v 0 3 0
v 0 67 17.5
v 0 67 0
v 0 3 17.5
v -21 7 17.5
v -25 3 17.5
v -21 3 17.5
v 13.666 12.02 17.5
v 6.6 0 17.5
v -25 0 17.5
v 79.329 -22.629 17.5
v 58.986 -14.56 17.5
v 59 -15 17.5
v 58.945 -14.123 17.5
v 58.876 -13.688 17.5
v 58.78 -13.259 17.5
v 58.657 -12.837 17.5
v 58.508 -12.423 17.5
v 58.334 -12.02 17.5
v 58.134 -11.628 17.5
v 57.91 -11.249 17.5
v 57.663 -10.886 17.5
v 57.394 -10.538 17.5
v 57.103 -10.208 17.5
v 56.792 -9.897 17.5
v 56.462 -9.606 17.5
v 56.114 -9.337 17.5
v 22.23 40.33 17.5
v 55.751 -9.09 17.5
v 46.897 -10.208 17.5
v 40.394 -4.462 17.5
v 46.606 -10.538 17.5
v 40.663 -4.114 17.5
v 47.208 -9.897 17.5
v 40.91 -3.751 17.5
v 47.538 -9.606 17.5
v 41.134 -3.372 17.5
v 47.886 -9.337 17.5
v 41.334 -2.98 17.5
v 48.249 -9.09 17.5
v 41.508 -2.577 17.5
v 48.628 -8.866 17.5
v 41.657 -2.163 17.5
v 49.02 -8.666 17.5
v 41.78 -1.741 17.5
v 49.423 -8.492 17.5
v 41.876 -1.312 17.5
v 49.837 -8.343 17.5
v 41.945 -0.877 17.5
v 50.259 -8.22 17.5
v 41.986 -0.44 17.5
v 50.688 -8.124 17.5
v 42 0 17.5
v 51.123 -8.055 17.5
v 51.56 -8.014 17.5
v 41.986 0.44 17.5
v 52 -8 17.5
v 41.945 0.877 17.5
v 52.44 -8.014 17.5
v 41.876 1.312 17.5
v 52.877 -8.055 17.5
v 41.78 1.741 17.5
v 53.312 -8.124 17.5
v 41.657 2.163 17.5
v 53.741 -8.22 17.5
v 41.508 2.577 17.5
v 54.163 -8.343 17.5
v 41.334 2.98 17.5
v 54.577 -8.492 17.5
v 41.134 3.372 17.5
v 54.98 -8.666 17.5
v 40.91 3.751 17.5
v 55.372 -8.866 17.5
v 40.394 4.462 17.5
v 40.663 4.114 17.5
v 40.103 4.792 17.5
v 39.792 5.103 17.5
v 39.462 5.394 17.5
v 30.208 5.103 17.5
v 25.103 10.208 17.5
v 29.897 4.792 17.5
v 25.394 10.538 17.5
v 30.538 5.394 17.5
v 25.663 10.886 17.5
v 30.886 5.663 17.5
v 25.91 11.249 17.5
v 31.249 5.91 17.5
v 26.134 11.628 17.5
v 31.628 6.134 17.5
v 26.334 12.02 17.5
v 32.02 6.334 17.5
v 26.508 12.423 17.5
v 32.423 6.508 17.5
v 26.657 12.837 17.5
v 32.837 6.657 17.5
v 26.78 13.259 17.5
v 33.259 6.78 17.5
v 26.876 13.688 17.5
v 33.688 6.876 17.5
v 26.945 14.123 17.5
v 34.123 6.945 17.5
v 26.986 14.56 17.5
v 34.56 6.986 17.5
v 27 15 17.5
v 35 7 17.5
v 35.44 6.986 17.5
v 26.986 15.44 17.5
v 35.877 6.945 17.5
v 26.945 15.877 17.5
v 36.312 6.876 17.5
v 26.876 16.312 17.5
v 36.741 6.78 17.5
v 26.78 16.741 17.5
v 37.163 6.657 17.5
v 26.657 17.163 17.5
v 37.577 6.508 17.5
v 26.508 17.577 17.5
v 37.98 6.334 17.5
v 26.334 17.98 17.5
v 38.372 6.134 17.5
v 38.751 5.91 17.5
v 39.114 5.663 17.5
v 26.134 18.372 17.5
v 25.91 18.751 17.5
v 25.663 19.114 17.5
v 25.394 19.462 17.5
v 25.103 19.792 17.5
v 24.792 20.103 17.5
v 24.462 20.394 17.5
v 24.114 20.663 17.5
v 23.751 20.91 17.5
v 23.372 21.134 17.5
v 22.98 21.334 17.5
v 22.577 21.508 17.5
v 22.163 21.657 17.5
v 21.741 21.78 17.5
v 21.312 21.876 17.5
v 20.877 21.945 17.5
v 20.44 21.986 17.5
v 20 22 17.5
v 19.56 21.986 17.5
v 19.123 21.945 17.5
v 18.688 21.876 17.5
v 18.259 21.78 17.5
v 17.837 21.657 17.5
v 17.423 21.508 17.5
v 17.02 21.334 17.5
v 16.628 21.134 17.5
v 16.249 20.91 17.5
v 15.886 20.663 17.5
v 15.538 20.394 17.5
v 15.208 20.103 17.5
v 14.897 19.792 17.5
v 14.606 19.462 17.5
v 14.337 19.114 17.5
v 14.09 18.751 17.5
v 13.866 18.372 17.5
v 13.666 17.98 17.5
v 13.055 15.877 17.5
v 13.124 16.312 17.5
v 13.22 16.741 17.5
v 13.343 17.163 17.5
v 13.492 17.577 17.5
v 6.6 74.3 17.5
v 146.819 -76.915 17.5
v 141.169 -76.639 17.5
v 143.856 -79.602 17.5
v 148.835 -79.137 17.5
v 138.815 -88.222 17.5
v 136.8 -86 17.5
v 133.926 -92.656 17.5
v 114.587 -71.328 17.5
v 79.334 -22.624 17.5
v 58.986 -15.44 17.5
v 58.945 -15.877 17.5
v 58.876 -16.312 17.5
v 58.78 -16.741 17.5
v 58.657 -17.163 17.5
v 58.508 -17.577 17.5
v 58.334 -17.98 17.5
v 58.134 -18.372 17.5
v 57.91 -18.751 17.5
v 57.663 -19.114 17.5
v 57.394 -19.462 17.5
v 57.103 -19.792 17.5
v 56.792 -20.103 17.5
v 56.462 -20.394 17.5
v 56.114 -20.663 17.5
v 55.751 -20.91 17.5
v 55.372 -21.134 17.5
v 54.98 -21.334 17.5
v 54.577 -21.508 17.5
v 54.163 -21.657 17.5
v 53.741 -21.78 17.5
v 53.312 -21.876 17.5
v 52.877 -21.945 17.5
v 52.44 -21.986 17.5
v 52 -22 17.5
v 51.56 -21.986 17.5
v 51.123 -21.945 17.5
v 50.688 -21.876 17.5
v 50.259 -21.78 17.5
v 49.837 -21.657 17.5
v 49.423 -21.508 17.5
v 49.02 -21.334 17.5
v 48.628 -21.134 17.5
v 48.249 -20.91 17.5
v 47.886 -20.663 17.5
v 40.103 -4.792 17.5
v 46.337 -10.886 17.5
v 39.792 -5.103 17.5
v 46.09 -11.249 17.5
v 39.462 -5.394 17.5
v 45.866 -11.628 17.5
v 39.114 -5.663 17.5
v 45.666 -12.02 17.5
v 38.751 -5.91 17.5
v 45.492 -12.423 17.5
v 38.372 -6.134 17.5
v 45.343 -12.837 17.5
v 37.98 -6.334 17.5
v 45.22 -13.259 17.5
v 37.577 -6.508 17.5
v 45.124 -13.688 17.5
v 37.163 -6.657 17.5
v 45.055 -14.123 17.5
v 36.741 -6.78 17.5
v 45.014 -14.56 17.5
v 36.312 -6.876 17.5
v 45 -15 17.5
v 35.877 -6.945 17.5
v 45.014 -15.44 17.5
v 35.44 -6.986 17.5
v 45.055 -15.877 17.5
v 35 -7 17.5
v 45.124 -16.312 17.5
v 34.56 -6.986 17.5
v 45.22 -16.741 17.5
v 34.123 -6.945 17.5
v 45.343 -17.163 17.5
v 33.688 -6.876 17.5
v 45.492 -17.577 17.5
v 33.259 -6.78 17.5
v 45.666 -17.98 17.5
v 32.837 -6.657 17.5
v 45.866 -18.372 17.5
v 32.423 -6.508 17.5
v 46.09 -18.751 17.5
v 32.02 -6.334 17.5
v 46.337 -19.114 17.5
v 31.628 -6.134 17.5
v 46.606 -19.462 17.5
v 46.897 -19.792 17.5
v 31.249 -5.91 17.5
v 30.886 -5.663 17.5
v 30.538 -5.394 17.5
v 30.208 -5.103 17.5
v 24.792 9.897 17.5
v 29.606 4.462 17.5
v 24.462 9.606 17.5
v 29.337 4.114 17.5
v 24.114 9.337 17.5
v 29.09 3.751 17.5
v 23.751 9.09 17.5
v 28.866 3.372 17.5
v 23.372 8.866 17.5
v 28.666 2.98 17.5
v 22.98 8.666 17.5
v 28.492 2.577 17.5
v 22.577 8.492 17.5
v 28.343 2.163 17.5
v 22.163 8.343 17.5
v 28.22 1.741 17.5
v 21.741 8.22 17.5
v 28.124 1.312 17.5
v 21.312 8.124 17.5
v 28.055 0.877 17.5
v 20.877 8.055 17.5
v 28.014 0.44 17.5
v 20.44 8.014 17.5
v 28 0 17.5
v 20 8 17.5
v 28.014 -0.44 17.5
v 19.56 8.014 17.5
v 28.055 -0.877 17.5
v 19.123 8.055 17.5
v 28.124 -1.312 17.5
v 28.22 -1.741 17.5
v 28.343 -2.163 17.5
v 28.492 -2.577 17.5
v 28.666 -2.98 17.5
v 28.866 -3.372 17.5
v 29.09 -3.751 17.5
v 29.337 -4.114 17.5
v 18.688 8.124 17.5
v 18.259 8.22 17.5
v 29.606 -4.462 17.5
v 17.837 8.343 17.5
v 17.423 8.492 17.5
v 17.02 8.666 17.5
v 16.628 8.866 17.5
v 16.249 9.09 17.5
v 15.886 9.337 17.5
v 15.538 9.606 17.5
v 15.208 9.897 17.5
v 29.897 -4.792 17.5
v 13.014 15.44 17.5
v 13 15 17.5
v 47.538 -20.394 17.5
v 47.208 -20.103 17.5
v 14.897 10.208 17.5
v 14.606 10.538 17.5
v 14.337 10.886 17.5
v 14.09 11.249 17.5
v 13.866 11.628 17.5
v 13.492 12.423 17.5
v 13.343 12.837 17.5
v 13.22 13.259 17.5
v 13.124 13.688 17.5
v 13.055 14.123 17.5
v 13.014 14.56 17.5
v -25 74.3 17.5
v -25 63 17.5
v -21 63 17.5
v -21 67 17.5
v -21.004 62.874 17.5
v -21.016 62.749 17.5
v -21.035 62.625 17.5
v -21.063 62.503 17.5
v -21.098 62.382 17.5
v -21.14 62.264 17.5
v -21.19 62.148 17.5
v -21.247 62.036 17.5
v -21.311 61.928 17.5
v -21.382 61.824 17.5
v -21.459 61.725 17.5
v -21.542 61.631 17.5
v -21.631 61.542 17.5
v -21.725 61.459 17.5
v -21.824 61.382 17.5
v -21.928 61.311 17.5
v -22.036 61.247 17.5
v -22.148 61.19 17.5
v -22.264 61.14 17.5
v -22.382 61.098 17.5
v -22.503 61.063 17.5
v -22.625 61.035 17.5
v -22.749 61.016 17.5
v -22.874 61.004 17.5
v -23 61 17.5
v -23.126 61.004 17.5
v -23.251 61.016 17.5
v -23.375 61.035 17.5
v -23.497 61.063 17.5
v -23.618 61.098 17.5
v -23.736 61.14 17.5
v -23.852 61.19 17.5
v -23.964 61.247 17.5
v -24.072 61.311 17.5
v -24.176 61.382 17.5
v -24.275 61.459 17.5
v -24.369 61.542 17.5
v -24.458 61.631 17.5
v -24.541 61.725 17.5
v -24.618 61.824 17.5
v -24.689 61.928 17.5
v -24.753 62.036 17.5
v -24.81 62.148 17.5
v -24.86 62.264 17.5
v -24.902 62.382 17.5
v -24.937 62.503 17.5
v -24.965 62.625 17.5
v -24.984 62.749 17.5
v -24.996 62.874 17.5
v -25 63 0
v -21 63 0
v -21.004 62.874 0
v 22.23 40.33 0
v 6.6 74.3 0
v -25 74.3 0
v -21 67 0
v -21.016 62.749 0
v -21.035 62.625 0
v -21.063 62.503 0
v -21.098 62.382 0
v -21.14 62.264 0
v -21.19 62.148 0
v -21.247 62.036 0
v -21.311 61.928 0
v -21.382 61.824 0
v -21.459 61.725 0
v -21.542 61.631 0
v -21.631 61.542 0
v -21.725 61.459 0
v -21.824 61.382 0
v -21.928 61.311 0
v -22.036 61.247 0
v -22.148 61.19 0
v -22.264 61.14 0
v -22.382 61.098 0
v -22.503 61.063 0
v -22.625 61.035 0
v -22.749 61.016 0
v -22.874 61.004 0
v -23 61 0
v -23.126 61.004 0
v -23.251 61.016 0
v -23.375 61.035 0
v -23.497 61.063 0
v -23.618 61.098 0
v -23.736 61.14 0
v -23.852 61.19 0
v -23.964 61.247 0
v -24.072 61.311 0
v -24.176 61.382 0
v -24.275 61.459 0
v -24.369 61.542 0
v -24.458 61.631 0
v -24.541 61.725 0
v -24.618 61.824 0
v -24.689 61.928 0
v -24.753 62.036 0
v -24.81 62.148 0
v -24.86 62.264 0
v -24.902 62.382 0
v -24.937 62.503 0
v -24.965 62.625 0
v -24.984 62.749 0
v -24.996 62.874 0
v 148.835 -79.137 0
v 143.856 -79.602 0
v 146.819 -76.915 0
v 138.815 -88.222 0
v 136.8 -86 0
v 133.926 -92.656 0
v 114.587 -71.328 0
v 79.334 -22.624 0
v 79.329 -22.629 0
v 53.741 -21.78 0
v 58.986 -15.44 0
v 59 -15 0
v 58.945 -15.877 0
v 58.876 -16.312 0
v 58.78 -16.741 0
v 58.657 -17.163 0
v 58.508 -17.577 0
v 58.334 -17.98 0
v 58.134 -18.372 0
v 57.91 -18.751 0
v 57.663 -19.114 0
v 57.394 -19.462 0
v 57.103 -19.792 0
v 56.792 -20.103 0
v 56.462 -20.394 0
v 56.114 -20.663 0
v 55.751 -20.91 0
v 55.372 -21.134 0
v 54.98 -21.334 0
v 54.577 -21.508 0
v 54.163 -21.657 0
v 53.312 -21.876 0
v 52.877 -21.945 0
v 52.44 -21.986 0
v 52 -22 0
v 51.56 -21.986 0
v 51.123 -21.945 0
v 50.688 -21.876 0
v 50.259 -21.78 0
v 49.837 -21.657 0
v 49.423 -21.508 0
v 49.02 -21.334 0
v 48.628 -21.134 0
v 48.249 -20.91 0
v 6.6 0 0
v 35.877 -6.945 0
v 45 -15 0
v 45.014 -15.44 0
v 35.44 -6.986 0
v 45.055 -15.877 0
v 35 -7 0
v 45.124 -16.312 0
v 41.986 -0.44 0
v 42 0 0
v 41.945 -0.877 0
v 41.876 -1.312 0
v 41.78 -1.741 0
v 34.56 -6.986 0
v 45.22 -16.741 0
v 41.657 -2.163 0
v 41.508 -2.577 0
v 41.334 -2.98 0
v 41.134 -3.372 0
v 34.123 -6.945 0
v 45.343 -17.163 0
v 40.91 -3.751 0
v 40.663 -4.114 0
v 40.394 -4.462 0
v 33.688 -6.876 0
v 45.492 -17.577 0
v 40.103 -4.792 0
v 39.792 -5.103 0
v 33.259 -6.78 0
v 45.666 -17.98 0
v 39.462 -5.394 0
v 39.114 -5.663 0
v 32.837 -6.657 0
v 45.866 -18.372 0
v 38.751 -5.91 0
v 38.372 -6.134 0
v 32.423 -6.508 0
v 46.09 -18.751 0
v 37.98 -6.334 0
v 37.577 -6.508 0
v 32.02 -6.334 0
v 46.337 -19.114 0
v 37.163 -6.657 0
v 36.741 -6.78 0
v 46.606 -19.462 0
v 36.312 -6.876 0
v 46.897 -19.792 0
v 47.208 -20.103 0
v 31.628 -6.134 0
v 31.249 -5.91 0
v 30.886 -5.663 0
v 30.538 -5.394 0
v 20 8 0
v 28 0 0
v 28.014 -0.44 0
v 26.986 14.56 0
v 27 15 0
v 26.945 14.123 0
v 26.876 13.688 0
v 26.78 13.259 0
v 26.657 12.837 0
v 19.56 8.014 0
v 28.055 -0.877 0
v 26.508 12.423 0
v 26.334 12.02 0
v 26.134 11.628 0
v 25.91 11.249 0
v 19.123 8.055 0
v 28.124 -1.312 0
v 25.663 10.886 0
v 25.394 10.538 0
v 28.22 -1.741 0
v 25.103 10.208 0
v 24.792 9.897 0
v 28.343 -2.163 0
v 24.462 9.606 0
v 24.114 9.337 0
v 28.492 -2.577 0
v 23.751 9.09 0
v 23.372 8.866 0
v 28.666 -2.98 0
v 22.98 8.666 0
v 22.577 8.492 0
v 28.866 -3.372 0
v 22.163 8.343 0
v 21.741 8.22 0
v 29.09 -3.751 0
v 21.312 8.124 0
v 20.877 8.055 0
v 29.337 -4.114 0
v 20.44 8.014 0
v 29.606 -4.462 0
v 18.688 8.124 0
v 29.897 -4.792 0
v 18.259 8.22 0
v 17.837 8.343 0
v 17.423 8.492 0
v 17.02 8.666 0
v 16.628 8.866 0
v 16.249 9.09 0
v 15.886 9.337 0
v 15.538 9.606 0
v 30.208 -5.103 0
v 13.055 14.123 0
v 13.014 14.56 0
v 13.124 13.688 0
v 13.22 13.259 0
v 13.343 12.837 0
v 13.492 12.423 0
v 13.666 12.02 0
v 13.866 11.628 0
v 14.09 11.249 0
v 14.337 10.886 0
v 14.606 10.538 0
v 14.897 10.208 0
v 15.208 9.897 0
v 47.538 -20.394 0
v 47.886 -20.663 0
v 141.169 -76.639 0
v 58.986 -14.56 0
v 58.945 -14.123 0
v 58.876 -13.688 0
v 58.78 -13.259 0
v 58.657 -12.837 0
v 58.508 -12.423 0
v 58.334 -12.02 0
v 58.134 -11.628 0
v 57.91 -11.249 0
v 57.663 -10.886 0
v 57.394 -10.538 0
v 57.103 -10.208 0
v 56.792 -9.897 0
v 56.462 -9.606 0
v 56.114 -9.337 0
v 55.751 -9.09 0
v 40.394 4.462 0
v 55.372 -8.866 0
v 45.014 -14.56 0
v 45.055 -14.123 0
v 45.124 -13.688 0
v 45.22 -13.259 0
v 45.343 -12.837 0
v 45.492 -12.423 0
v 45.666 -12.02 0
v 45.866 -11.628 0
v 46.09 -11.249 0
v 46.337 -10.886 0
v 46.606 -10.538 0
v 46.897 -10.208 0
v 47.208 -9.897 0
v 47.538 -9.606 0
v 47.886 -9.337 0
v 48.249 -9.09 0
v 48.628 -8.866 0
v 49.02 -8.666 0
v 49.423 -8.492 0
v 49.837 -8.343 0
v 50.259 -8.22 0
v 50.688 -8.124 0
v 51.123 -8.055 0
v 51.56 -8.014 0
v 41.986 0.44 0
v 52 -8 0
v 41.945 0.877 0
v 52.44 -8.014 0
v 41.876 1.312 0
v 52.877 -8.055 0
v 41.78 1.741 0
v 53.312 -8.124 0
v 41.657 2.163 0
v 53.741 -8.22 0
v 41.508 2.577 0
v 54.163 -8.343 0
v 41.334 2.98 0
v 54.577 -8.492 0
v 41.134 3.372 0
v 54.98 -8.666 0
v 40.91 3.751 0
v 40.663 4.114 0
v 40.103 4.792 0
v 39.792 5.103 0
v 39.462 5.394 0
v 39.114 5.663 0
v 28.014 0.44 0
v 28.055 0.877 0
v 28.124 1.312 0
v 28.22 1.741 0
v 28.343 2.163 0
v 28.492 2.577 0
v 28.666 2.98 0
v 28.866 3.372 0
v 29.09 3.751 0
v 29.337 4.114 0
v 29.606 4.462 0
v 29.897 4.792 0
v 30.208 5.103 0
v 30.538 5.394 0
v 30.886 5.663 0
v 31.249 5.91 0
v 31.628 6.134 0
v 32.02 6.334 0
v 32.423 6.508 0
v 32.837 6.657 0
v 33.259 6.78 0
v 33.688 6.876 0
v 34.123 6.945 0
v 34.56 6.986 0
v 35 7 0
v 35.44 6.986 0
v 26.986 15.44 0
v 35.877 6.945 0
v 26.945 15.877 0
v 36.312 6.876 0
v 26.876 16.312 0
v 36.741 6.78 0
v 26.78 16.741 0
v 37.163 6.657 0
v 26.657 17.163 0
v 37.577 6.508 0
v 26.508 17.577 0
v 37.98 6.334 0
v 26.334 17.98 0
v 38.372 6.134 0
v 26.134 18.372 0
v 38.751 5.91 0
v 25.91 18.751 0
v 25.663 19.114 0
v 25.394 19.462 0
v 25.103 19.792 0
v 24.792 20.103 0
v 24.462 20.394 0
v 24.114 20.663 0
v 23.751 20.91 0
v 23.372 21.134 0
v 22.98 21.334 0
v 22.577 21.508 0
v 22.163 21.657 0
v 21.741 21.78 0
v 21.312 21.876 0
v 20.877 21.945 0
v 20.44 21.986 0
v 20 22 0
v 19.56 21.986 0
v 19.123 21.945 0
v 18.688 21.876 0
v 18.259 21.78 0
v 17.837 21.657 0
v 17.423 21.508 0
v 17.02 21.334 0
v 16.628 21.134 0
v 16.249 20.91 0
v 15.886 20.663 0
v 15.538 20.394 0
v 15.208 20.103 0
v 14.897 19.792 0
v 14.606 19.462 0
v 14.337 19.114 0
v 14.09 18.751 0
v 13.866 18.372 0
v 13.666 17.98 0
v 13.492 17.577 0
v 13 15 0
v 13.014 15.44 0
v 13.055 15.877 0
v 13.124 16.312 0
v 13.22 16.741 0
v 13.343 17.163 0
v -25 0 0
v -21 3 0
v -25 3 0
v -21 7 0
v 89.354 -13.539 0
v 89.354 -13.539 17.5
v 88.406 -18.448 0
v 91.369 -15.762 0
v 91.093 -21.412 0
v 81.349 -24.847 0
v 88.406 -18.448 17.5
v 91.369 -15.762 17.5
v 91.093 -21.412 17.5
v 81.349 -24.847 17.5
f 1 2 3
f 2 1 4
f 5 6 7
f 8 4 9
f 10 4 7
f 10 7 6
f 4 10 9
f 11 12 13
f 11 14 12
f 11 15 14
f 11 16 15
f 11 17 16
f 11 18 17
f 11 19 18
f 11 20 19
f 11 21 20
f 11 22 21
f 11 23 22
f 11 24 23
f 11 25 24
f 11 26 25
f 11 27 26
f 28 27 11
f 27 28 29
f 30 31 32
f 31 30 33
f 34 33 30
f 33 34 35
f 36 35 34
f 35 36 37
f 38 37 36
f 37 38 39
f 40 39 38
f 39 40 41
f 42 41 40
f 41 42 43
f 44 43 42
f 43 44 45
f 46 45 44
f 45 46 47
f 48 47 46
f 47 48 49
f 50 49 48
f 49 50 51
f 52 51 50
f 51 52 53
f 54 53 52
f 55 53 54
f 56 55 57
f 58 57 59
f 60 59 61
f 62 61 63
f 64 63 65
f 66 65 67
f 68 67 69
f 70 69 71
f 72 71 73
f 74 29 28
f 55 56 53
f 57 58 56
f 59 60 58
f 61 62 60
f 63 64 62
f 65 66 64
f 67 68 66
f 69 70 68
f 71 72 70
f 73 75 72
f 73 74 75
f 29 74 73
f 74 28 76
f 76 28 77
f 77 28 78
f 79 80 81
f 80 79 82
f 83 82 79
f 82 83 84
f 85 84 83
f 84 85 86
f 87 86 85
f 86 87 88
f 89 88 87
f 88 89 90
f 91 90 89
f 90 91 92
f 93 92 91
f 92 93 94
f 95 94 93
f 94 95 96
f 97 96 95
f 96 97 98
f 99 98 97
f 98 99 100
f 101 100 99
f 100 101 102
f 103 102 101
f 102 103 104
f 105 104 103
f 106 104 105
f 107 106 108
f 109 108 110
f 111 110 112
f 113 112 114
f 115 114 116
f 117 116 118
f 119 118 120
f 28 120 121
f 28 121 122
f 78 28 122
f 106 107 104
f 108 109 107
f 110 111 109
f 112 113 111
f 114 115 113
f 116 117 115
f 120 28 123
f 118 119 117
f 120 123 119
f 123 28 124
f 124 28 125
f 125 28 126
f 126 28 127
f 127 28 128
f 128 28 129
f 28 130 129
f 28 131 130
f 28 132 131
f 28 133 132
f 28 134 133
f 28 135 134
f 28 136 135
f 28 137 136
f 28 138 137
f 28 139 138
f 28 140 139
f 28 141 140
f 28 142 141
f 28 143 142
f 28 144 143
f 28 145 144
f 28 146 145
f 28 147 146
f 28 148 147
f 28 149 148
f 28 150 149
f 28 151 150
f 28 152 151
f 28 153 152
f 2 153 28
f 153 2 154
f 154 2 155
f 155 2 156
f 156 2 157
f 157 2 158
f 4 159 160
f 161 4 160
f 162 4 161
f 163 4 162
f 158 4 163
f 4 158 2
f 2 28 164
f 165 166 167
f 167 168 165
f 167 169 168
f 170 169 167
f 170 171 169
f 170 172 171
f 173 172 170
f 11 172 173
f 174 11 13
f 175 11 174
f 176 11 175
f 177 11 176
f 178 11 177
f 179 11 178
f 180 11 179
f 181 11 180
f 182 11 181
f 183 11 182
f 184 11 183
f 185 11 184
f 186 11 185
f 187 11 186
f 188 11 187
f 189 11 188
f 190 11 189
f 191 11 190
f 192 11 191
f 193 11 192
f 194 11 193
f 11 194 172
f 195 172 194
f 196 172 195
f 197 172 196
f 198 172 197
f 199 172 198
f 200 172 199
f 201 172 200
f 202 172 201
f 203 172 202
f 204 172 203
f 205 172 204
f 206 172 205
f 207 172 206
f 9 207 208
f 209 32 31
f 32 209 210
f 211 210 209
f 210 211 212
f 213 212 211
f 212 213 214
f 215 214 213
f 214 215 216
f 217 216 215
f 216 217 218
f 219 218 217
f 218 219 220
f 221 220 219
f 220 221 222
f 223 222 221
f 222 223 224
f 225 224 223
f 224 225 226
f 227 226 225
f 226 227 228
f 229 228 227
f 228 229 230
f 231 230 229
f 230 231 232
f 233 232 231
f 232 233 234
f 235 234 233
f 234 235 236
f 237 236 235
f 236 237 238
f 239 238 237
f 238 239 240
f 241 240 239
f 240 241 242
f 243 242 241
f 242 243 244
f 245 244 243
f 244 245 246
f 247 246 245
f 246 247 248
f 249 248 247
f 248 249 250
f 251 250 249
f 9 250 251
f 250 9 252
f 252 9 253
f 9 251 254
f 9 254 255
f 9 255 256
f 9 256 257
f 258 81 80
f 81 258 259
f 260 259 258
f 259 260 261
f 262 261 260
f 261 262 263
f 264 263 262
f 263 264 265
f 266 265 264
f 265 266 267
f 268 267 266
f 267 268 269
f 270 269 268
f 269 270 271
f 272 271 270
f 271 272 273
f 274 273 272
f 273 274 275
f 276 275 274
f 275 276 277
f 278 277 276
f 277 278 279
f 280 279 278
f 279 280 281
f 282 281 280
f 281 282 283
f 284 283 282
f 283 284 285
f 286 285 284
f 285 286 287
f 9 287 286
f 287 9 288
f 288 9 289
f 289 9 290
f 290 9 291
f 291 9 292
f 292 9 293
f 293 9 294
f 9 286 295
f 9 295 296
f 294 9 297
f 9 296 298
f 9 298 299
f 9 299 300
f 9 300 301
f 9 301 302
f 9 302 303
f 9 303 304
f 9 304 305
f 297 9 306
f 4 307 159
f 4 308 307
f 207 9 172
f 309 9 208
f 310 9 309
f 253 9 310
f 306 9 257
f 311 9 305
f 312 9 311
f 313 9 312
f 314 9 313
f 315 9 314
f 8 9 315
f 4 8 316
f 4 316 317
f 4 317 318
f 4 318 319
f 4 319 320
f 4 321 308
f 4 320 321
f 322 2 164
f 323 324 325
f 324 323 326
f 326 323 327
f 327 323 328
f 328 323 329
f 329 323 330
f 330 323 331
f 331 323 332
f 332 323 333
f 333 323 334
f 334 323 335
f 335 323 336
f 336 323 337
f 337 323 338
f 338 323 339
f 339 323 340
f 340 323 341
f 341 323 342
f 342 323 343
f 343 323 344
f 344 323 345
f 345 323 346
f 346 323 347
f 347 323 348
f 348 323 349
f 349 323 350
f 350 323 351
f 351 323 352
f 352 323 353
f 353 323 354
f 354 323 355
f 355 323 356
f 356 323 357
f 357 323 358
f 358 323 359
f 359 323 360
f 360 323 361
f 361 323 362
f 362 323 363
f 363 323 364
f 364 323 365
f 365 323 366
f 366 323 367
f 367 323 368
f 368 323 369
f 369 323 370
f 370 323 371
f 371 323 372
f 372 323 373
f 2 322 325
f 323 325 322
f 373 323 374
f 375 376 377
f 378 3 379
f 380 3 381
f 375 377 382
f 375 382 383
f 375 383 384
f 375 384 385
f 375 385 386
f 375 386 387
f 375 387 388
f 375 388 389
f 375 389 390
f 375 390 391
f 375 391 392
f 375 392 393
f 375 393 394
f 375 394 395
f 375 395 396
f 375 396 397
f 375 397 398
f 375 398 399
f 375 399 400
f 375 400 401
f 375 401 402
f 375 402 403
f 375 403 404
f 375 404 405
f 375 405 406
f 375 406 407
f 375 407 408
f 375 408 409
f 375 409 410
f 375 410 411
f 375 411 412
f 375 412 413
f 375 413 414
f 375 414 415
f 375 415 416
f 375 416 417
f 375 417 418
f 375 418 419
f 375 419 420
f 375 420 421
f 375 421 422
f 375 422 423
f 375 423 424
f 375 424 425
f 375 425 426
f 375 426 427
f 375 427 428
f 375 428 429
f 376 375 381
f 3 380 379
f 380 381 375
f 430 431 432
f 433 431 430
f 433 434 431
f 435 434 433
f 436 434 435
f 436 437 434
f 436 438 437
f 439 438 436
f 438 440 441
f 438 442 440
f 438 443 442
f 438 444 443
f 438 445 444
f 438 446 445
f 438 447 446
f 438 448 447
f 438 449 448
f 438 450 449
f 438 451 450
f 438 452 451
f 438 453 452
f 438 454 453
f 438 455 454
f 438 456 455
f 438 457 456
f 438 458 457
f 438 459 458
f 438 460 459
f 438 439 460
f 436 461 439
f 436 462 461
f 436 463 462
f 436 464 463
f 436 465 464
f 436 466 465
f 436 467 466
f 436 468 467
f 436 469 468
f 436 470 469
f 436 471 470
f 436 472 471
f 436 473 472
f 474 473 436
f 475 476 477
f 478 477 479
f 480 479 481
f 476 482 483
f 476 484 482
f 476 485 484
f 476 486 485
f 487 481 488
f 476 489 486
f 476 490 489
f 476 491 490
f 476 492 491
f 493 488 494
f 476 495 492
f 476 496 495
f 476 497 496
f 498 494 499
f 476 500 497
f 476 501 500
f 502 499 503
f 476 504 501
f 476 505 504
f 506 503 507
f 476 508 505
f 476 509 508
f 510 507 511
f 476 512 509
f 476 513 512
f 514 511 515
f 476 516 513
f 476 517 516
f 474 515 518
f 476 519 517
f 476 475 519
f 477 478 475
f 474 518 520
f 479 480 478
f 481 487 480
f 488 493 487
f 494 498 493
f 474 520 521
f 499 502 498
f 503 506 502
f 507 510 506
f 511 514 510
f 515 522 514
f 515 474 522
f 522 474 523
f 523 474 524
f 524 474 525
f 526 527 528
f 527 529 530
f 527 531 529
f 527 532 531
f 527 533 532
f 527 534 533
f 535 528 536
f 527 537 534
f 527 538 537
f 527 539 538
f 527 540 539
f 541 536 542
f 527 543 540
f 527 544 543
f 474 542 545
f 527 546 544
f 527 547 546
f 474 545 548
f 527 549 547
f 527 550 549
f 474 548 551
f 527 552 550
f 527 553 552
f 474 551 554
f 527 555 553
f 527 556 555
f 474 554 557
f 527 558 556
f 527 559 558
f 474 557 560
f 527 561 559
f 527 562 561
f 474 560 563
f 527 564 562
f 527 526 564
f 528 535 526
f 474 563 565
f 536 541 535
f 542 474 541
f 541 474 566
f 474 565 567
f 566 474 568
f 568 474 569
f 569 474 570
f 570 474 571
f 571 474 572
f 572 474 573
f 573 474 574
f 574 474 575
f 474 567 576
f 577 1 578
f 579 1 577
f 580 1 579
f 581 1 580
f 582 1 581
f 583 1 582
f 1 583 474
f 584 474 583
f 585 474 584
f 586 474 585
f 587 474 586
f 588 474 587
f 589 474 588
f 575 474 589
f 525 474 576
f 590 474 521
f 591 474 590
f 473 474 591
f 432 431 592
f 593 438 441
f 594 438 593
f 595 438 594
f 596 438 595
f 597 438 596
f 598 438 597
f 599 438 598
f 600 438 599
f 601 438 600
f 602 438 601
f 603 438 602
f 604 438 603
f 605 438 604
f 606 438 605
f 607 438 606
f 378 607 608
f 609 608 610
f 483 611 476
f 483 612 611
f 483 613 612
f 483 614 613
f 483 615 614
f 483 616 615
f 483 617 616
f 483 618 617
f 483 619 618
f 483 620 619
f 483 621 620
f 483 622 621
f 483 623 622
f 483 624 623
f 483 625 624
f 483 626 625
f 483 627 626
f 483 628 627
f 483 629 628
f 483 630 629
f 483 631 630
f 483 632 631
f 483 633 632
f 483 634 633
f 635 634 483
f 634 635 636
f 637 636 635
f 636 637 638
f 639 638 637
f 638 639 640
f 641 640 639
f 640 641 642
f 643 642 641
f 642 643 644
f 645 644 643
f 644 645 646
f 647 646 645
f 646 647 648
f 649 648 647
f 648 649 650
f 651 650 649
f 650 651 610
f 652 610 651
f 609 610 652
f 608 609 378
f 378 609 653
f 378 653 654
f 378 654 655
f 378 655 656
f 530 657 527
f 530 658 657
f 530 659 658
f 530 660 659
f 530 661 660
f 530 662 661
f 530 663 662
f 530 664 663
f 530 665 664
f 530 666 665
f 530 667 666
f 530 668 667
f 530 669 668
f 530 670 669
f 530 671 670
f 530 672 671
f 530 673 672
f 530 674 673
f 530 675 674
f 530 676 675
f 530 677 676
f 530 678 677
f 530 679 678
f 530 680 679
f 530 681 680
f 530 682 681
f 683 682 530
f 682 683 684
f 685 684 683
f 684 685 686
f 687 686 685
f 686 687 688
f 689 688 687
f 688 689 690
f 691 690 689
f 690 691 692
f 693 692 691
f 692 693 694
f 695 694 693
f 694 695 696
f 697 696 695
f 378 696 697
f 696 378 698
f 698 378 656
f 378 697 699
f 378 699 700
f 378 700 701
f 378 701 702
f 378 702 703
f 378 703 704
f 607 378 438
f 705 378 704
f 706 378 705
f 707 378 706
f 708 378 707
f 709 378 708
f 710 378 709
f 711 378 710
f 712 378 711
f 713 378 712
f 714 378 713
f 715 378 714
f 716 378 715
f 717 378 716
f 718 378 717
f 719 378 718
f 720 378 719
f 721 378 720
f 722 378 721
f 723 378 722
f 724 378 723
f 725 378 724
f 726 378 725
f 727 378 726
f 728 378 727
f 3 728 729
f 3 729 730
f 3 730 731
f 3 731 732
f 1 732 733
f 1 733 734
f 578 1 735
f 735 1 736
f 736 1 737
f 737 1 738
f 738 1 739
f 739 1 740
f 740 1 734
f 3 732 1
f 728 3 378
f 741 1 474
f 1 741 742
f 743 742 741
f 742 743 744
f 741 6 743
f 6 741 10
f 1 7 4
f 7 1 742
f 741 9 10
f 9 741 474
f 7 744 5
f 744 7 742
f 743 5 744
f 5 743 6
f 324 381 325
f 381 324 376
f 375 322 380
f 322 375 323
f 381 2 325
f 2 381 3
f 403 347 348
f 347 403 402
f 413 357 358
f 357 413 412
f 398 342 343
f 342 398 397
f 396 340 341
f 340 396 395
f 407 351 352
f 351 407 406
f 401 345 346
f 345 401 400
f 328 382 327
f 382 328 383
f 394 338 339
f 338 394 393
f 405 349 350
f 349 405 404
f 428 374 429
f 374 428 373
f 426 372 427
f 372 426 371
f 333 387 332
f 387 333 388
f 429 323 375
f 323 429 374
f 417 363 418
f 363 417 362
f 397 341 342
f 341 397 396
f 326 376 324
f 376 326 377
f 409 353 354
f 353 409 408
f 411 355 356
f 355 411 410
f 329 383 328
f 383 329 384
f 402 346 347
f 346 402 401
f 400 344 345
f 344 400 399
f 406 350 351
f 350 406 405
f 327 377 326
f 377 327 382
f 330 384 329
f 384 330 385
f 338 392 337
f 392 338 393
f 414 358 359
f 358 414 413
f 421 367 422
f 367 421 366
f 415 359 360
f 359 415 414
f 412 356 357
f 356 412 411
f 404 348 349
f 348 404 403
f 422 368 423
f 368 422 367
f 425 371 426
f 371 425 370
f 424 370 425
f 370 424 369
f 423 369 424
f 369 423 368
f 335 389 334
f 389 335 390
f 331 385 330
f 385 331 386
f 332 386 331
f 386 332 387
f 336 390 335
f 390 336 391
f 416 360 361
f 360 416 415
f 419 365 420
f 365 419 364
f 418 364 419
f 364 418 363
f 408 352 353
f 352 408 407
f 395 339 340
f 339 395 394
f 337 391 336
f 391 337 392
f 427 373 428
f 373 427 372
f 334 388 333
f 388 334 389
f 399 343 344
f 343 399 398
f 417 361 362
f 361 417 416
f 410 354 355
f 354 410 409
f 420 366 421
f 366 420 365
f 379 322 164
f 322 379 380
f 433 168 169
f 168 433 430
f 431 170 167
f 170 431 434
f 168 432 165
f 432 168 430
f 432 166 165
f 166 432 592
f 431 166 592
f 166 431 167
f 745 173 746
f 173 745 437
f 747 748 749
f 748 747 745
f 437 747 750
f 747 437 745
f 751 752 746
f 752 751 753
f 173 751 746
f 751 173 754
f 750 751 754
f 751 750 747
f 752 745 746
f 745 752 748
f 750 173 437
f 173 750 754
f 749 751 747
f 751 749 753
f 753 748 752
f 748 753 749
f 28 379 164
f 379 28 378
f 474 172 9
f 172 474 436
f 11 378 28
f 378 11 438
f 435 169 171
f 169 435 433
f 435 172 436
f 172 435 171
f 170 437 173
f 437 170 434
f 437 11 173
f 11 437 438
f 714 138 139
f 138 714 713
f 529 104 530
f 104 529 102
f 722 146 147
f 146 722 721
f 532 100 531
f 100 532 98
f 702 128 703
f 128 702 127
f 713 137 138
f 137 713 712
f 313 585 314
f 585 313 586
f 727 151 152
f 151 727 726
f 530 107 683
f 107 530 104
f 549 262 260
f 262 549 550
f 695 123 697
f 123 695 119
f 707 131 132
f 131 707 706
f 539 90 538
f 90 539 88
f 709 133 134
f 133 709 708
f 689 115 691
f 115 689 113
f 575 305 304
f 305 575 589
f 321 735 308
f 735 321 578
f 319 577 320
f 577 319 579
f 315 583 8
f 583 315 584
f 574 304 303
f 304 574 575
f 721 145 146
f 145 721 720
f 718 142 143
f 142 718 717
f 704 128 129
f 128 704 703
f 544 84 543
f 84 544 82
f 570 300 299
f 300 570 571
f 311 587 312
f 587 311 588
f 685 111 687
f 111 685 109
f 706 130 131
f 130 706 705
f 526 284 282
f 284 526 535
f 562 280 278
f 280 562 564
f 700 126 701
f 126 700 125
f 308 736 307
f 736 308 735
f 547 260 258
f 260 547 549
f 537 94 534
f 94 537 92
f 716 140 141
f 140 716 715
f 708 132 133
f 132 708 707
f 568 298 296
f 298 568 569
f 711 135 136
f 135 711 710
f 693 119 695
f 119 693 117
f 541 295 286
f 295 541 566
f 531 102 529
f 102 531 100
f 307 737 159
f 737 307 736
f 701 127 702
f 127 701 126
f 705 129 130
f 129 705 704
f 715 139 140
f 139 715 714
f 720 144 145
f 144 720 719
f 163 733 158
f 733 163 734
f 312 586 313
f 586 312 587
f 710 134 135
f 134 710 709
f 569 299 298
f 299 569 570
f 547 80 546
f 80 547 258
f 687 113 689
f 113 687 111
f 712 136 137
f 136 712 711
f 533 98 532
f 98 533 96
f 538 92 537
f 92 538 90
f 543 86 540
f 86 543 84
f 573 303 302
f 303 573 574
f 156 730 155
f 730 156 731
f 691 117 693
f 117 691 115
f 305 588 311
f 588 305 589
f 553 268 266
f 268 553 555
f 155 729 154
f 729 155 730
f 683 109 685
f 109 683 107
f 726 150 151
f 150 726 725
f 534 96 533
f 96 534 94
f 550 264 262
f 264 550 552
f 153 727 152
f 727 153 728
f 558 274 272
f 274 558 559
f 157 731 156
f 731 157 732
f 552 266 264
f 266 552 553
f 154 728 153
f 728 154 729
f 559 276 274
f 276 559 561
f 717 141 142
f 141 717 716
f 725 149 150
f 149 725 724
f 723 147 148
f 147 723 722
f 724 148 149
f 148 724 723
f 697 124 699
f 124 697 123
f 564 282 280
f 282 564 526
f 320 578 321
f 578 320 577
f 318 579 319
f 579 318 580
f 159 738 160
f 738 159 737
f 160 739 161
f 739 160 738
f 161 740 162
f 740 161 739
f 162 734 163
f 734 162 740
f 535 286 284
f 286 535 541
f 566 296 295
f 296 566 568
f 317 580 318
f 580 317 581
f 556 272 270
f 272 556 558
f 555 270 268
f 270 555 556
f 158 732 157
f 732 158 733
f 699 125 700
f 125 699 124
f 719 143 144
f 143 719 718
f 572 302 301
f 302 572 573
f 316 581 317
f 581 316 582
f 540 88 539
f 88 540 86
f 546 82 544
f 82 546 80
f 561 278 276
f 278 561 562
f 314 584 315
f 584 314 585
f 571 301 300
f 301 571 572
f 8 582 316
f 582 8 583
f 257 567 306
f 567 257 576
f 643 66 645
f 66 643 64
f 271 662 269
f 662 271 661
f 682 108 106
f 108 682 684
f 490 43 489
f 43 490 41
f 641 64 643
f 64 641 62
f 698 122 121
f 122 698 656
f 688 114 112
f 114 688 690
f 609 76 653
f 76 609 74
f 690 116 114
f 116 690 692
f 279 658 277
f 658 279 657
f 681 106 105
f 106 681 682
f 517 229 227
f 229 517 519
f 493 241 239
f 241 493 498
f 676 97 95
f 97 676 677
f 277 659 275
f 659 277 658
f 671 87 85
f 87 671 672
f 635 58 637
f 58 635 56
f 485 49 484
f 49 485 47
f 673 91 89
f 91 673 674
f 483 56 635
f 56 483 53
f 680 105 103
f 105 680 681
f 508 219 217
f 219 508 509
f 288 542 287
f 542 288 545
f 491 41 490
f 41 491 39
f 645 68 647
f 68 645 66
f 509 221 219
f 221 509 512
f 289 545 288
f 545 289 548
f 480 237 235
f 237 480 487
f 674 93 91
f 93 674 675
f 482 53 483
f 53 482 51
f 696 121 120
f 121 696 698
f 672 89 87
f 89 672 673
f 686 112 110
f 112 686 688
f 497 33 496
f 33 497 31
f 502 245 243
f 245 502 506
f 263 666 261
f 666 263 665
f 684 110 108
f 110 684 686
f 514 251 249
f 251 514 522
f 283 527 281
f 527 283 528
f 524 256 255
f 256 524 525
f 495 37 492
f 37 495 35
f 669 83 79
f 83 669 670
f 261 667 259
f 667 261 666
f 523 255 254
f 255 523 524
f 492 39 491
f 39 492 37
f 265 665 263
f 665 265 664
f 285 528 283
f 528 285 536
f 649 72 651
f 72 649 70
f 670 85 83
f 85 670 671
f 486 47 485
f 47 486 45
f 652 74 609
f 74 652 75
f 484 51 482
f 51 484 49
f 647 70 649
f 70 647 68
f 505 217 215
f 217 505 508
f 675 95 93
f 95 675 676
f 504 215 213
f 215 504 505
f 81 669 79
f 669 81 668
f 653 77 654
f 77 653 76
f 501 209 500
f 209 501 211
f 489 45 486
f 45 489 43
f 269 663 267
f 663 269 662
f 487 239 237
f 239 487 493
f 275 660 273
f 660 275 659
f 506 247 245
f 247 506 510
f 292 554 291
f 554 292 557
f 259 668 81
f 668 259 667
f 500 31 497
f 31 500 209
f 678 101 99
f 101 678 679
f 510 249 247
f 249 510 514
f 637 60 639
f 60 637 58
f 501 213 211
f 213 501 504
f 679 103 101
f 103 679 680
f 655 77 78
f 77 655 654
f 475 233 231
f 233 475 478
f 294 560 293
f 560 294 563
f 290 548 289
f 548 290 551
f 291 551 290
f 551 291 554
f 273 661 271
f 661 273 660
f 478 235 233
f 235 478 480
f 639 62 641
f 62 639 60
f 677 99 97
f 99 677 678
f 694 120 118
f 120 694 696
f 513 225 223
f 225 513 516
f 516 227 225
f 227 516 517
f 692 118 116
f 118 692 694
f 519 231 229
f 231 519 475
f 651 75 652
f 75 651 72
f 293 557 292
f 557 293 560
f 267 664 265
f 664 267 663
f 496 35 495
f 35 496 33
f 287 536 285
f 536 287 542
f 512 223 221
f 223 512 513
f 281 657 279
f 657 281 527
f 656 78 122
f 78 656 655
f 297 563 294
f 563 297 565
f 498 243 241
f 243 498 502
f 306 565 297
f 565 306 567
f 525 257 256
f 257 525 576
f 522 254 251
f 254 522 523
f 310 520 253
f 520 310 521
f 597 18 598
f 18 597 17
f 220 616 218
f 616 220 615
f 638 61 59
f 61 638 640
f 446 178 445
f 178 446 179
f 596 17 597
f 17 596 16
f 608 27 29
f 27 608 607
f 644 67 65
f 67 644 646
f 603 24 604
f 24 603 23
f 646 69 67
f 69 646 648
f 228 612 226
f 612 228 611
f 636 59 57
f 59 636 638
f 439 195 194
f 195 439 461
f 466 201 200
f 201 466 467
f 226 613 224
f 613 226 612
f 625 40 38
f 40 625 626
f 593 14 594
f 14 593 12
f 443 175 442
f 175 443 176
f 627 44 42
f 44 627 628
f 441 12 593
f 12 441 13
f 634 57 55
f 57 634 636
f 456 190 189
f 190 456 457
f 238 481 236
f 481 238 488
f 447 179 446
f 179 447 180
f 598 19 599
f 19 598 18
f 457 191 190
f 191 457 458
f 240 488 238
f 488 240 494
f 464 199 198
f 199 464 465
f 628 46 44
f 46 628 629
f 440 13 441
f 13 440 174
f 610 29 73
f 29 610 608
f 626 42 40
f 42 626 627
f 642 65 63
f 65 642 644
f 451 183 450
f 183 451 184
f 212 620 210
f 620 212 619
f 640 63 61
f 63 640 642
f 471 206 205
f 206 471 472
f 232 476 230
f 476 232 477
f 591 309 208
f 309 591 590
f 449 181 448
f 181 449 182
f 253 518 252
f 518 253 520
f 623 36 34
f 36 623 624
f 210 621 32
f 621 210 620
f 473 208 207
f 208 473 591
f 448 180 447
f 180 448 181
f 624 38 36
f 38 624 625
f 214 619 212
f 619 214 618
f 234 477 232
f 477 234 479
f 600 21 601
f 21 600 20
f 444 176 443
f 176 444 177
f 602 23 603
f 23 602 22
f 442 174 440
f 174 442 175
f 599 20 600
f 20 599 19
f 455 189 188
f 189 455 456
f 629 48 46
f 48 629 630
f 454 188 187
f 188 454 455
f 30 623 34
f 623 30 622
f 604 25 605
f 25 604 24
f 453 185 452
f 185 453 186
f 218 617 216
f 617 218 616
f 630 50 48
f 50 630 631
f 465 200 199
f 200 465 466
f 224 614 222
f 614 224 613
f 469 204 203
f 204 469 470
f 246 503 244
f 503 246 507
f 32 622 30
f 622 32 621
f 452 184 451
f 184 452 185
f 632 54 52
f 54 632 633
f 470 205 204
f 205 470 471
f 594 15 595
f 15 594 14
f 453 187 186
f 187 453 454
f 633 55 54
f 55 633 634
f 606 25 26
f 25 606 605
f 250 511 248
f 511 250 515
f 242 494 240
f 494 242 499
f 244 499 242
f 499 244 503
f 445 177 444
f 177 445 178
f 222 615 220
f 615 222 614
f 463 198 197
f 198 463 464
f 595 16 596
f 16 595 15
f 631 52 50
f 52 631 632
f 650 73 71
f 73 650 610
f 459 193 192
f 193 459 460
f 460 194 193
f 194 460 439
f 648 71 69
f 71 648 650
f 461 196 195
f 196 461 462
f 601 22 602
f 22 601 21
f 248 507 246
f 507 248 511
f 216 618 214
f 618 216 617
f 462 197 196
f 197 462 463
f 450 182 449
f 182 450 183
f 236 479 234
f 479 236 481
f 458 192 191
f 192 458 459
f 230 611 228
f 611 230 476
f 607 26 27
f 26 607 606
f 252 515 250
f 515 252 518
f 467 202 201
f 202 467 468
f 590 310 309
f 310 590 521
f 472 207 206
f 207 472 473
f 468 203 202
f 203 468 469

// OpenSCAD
arm_thickness = 17.5; // mm
base_width = 74.3;
small_arm_width = 3;
large_arm_width = 7.3;
arm_height = 25.0;
small_arm_latch = 4;
large_arm_latch = 8;
my_fn = 100;
triangle_x = 136.8;
triangle_y = 86;
triangle_mid_x = 22.23;
triangle_mid_y = 40.33;
handle_back = 6.6;
new_width = 3.25 * 2.54 * 10 + 2*small_arm_width;
angled_latch_height = 3/8 * 2.54 * 10.0;

difference() {
    union() {
        // small arm with latch
        translate([-arm_height, 0, 0]) {
            cube([arm_height, small_arm_width, arm_thickness]);
            translate([0, small_arm_width, 0]) {
               linear_extrude(arm_thickness) {
                  polygon([[0, 0], [small_arm_latch, 0], [small_arm_latch, small_arm_latch]]);
               }
            }
        }
        // bigger arm with latch
        translate([-arm_height, base_width - large_arm_width, 0]) {
            cube([arm_height, large_arm_width, arm_thickness]);
            translate([0, -large_arm_latch + small_arm_latch, 0]) {
                cube([small_arm_latch, large_arm_latch - small_arm_latch, arm_thickness]);
                translate([small_arm_latch / 2, 0, 0]){
                   cylinder(h=arm_thickness, r = small_arm_latch / 2, $fn = my_fn, center = false);
                }
            }
        }
        // handle back
        cube([handle_back, base_width, arm_thickness]);
        // triangular shape
        linear_extrude(arm_thickness){
           polygon([[handle_back, 0], [triangle_x, -triangle_y], [triangle_mid_x, triangle_mid_y], [handle_back, base_width]]);
        }
        // small angled latch
        translate([triangle_x, -triangle_y, 0]) {
            rotate([0, 0, -47.8]) {
                cube([small_arm_width, angled_latch_height + small_arm_latch, arm_thickness]);
                translate([-small_arm_latch, angled_latch_height, 0]){
                   linear_extrude(arm_thickness){
                      polygon([[0, 0], [small_arm_latch, 0], [small_arm_latch, small_arm_latch]]);
                   }
               }
            }
        }
        // backer
        translate([triangle_x + cos(47.8)*small_arm_width, -triangle_y-sin(47.8)*small_arm_width, 0]) {
            rotate([0, 0, -47.8-180]) {
                cube([new_width, handle_back, arm_thickness]);
            }
        }
        // bigger angled latch
        translate([triangle_x - cos(47.8)*new_width + 2*cos(47.8)*small_arm_width, 
                   -triangle_y+sin(47.8)*new_width - 2*sin(47.8)*small_arm_width, 
                   arm_thickness]) {
            rotate([0, 180, -47.8]) {
                cube([small_arm_width, angled_latch_height + small_arm_latch, arm_thickness]);
                translate([-small_arm_latch, angled_latch_height, 0]){
                   linear_extrude(arm_thickness){
                      polygon([[0, 0], [small_arm_latch, 0], [small_arm_latch, small_arm_latch]]);
                   }
               }
            }
        }
    }
    translate([20, 15, 0]) cylinder(h = 3*arm_thickness, r = 7, center = true, $fn = my_fn);
    translate([35, 0, 0]) cylinder(h = 3*arm_thickness, r = 7, center = true, $fn = my_fn);
    translate([52, -15, 0]) cylinder(h = 3*arm_thickness, r = 7, center = true, $fn = my_fn);
}
